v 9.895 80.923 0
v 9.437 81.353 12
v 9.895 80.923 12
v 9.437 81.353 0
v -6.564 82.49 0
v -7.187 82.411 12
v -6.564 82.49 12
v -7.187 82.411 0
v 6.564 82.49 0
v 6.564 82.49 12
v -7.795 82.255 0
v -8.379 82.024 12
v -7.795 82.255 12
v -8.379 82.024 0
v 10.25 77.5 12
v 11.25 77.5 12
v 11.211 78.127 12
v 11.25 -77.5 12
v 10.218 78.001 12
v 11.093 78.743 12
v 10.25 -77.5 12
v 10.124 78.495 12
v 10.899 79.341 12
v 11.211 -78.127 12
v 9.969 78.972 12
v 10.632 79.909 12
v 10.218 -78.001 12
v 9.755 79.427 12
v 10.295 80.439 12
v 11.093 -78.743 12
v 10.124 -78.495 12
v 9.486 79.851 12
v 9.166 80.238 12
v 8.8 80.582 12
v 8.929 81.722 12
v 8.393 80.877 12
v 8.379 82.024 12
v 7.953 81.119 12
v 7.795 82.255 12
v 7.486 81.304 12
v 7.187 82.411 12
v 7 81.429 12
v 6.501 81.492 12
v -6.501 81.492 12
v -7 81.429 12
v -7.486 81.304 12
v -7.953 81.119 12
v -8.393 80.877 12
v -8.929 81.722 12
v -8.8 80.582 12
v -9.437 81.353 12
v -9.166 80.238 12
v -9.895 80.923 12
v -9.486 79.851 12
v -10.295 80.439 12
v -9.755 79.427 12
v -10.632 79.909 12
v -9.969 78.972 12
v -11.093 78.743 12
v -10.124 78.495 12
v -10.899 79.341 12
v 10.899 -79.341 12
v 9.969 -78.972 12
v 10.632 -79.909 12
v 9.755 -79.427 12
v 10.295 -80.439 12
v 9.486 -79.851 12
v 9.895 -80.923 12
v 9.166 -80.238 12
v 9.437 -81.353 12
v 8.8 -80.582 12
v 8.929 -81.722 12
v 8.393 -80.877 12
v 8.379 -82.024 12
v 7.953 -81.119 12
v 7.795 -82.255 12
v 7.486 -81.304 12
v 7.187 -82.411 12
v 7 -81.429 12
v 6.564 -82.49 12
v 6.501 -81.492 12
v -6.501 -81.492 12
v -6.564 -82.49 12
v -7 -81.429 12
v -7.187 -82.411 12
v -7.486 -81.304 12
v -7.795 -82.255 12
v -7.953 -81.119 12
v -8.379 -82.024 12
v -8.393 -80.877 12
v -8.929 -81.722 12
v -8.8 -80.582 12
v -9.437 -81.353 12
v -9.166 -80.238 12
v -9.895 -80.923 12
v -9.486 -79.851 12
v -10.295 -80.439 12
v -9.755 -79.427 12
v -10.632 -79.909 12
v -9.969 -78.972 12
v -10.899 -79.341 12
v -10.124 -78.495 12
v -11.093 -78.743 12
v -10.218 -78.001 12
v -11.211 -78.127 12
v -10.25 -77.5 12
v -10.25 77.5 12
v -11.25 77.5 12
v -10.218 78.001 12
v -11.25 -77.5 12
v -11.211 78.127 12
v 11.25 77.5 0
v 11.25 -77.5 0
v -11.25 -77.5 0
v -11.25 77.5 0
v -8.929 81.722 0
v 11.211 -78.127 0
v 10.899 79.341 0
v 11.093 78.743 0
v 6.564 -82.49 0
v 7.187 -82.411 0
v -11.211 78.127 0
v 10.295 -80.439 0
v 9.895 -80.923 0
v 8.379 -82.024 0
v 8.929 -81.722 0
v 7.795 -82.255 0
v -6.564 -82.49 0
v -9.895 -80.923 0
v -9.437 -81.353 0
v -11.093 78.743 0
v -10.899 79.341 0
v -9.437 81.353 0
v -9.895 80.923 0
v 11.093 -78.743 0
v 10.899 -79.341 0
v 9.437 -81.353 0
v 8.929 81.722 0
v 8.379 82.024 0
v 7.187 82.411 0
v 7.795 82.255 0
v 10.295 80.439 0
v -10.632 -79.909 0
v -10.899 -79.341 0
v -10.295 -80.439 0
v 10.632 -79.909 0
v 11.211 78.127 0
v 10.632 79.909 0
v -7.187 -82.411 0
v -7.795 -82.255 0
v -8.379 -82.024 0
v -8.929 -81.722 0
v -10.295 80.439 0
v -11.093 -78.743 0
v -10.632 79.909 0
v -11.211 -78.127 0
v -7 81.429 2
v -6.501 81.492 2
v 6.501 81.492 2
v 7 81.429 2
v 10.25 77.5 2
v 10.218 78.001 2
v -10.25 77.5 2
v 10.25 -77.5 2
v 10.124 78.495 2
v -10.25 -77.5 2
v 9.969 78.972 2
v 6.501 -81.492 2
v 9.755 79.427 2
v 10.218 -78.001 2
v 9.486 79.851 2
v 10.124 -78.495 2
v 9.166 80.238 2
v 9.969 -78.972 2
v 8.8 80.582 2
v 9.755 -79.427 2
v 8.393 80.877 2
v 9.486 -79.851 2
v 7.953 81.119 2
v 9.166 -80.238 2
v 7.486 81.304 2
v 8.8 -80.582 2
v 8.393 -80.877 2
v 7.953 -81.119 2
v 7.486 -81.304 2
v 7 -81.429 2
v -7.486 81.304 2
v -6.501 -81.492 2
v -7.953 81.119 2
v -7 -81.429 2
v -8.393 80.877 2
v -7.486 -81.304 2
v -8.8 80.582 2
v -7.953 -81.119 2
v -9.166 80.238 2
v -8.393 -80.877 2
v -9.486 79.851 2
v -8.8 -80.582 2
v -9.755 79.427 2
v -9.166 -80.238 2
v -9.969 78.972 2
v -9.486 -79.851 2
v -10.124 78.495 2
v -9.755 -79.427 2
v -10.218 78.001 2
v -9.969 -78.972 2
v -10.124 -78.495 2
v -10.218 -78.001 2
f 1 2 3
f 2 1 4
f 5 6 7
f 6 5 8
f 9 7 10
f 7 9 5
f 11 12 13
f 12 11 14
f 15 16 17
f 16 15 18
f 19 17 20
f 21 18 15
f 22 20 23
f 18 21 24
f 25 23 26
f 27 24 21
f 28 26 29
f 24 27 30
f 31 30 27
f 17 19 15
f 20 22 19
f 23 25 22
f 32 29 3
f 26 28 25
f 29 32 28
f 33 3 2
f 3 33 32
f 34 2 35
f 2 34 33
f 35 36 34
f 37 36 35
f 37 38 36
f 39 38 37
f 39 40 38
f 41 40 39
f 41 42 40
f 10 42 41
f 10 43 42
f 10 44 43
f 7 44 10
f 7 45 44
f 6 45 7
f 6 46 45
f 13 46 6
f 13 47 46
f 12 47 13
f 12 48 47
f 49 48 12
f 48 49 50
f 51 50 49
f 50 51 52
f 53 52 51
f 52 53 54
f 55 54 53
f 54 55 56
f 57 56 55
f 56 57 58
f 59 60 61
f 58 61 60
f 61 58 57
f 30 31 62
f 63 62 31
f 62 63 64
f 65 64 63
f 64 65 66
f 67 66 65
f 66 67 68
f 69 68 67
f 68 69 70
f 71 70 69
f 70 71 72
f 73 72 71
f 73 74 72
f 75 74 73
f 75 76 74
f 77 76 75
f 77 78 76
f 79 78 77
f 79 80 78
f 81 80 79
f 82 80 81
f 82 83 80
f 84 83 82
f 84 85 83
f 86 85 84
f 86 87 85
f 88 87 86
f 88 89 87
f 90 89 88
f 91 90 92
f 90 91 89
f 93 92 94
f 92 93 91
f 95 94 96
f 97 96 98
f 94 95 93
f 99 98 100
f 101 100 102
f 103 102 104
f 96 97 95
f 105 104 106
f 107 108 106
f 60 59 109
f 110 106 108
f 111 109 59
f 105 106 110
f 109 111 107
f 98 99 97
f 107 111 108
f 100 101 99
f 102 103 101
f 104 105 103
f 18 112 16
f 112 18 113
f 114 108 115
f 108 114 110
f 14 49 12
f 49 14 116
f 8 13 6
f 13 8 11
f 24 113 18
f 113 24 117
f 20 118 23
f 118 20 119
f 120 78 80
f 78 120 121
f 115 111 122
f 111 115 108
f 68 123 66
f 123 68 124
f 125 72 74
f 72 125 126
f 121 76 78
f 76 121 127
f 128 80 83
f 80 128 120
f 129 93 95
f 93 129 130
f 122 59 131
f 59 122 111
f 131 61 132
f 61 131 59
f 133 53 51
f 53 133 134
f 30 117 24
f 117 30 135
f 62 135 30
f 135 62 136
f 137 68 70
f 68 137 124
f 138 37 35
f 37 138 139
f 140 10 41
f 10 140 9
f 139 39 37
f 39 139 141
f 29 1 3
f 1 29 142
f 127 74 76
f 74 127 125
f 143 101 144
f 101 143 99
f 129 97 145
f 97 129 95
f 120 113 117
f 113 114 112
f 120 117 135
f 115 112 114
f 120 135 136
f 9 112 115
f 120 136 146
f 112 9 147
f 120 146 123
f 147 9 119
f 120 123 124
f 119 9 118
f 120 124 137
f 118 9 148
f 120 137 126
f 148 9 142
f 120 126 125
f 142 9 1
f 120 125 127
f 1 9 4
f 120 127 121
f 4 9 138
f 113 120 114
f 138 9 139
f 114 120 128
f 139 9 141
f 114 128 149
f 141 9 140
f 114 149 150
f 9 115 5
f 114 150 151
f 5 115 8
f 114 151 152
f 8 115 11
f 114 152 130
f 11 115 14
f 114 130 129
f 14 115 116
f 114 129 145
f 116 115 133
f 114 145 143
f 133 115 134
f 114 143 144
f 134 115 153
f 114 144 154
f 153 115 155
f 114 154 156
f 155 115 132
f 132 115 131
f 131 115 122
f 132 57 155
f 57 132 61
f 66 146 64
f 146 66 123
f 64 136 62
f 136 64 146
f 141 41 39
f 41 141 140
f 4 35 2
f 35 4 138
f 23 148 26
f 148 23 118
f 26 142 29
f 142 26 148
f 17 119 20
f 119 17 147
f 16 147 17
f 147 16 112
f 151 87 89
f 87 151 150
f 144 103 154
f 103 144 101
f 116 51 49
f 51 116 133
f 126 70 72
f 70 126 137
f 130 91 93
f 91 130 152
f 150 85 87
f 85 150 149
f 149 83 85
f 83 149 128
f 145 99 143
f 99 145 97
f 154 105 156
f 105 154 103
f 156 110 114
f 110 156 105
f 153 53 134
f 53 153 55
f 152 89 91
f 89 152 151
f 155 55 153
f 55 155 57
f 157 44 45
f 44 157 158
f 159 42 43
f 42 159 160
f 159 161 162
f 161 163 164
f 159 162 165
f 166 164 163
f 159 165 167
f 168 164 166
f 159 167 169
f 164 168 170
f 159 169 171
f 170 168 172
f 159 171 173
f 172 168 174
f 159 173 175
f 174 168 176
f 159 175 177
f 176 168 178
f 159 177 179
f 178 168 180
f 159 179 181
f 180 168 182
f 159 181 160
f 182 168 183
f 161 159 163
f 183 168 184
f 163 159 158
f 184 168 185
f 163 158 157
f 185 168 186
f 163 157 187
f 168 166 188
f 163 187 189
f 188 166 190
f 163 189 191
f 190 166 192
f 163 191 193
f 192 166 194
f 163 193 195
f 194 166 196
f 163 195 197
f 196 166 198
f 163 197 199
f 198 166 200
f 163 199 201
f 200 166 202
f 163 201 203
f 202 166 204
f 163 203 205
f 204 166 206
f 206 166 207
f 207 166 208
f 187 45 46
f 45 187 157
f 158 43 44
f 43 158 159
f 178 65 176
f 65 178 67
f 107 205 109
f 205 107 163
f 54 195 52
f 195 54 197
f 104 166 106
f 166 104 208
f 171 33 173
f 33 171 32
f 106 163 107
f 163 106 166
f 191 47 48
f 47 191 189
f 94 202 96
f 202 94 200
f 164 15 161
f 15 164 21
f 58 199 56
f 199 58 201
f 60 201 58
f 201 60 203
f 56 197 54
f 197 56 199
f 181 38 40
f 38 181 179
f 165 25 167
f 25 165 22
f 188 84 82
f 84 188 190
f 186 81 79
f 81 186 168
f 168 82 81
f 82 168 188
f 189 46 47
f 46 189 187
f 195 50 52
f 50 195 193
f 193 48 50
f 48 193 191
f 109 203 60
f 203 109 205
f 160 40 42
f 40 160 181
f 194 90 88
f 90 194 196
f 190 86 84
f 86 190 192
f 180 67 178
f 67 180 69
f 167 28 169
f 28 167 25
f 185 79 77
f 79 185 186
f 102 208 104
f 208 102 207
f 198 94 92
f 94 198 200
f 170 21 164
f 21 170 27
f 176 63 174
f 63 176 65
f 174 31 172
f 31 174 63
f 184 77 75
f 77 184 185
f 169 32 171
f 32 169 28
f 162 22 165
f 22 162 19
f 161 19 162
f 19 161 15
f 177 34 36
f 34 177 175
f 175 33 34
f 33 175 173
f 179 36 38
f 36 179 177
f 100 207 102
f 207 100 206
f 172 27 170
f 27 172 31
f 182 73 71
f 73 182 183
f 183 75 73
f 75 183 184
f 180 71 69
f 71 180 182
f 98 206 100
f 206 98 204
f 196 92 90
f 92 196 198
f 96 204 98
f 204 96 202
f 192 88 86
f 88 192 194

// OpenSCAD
$fn = 50;


difference() {
	union() {
		hull() {
			translate(v = [-6.2500000000, 77.5000000000, 0]) {
				cylinder(h = 12, r = 5);
			}
			translate(v = [6.2500000000, 77.5000000000, 0]) {
				cylinder(h = 12, r = 5);
			}
			translate(v = [-6.2500000000, -77.5000000000, 0]) {
				cylinder(h = 12, r = 5);
			}
			translate(v = [6.2500000000, -77.5000000000, 0]) {
				cylinder(h = 12, r = 5);
			}
		}
	}
	union() {
		translate(v = [0, 0, 2]) {
			hull() {
				translate(v = [-6.2500000000, 77.5000000000, 0]) {
					cylinder(h = 10, r = 4);
				}
				translate(v = [6.2500000000, 77.5000000000, 0]) {
					cylinder(h = 10, r = 4);
				}
				translate(v = [-6.2500000000, -77.5000000000, 0]) {
					cylinder(h = 10, r = 4);
				}
				translate(v = [6.2500000000, -77.5000000000, 0]) {
					cylinder(h = 10, r = 4);
				}
			}
		}
	}
}
